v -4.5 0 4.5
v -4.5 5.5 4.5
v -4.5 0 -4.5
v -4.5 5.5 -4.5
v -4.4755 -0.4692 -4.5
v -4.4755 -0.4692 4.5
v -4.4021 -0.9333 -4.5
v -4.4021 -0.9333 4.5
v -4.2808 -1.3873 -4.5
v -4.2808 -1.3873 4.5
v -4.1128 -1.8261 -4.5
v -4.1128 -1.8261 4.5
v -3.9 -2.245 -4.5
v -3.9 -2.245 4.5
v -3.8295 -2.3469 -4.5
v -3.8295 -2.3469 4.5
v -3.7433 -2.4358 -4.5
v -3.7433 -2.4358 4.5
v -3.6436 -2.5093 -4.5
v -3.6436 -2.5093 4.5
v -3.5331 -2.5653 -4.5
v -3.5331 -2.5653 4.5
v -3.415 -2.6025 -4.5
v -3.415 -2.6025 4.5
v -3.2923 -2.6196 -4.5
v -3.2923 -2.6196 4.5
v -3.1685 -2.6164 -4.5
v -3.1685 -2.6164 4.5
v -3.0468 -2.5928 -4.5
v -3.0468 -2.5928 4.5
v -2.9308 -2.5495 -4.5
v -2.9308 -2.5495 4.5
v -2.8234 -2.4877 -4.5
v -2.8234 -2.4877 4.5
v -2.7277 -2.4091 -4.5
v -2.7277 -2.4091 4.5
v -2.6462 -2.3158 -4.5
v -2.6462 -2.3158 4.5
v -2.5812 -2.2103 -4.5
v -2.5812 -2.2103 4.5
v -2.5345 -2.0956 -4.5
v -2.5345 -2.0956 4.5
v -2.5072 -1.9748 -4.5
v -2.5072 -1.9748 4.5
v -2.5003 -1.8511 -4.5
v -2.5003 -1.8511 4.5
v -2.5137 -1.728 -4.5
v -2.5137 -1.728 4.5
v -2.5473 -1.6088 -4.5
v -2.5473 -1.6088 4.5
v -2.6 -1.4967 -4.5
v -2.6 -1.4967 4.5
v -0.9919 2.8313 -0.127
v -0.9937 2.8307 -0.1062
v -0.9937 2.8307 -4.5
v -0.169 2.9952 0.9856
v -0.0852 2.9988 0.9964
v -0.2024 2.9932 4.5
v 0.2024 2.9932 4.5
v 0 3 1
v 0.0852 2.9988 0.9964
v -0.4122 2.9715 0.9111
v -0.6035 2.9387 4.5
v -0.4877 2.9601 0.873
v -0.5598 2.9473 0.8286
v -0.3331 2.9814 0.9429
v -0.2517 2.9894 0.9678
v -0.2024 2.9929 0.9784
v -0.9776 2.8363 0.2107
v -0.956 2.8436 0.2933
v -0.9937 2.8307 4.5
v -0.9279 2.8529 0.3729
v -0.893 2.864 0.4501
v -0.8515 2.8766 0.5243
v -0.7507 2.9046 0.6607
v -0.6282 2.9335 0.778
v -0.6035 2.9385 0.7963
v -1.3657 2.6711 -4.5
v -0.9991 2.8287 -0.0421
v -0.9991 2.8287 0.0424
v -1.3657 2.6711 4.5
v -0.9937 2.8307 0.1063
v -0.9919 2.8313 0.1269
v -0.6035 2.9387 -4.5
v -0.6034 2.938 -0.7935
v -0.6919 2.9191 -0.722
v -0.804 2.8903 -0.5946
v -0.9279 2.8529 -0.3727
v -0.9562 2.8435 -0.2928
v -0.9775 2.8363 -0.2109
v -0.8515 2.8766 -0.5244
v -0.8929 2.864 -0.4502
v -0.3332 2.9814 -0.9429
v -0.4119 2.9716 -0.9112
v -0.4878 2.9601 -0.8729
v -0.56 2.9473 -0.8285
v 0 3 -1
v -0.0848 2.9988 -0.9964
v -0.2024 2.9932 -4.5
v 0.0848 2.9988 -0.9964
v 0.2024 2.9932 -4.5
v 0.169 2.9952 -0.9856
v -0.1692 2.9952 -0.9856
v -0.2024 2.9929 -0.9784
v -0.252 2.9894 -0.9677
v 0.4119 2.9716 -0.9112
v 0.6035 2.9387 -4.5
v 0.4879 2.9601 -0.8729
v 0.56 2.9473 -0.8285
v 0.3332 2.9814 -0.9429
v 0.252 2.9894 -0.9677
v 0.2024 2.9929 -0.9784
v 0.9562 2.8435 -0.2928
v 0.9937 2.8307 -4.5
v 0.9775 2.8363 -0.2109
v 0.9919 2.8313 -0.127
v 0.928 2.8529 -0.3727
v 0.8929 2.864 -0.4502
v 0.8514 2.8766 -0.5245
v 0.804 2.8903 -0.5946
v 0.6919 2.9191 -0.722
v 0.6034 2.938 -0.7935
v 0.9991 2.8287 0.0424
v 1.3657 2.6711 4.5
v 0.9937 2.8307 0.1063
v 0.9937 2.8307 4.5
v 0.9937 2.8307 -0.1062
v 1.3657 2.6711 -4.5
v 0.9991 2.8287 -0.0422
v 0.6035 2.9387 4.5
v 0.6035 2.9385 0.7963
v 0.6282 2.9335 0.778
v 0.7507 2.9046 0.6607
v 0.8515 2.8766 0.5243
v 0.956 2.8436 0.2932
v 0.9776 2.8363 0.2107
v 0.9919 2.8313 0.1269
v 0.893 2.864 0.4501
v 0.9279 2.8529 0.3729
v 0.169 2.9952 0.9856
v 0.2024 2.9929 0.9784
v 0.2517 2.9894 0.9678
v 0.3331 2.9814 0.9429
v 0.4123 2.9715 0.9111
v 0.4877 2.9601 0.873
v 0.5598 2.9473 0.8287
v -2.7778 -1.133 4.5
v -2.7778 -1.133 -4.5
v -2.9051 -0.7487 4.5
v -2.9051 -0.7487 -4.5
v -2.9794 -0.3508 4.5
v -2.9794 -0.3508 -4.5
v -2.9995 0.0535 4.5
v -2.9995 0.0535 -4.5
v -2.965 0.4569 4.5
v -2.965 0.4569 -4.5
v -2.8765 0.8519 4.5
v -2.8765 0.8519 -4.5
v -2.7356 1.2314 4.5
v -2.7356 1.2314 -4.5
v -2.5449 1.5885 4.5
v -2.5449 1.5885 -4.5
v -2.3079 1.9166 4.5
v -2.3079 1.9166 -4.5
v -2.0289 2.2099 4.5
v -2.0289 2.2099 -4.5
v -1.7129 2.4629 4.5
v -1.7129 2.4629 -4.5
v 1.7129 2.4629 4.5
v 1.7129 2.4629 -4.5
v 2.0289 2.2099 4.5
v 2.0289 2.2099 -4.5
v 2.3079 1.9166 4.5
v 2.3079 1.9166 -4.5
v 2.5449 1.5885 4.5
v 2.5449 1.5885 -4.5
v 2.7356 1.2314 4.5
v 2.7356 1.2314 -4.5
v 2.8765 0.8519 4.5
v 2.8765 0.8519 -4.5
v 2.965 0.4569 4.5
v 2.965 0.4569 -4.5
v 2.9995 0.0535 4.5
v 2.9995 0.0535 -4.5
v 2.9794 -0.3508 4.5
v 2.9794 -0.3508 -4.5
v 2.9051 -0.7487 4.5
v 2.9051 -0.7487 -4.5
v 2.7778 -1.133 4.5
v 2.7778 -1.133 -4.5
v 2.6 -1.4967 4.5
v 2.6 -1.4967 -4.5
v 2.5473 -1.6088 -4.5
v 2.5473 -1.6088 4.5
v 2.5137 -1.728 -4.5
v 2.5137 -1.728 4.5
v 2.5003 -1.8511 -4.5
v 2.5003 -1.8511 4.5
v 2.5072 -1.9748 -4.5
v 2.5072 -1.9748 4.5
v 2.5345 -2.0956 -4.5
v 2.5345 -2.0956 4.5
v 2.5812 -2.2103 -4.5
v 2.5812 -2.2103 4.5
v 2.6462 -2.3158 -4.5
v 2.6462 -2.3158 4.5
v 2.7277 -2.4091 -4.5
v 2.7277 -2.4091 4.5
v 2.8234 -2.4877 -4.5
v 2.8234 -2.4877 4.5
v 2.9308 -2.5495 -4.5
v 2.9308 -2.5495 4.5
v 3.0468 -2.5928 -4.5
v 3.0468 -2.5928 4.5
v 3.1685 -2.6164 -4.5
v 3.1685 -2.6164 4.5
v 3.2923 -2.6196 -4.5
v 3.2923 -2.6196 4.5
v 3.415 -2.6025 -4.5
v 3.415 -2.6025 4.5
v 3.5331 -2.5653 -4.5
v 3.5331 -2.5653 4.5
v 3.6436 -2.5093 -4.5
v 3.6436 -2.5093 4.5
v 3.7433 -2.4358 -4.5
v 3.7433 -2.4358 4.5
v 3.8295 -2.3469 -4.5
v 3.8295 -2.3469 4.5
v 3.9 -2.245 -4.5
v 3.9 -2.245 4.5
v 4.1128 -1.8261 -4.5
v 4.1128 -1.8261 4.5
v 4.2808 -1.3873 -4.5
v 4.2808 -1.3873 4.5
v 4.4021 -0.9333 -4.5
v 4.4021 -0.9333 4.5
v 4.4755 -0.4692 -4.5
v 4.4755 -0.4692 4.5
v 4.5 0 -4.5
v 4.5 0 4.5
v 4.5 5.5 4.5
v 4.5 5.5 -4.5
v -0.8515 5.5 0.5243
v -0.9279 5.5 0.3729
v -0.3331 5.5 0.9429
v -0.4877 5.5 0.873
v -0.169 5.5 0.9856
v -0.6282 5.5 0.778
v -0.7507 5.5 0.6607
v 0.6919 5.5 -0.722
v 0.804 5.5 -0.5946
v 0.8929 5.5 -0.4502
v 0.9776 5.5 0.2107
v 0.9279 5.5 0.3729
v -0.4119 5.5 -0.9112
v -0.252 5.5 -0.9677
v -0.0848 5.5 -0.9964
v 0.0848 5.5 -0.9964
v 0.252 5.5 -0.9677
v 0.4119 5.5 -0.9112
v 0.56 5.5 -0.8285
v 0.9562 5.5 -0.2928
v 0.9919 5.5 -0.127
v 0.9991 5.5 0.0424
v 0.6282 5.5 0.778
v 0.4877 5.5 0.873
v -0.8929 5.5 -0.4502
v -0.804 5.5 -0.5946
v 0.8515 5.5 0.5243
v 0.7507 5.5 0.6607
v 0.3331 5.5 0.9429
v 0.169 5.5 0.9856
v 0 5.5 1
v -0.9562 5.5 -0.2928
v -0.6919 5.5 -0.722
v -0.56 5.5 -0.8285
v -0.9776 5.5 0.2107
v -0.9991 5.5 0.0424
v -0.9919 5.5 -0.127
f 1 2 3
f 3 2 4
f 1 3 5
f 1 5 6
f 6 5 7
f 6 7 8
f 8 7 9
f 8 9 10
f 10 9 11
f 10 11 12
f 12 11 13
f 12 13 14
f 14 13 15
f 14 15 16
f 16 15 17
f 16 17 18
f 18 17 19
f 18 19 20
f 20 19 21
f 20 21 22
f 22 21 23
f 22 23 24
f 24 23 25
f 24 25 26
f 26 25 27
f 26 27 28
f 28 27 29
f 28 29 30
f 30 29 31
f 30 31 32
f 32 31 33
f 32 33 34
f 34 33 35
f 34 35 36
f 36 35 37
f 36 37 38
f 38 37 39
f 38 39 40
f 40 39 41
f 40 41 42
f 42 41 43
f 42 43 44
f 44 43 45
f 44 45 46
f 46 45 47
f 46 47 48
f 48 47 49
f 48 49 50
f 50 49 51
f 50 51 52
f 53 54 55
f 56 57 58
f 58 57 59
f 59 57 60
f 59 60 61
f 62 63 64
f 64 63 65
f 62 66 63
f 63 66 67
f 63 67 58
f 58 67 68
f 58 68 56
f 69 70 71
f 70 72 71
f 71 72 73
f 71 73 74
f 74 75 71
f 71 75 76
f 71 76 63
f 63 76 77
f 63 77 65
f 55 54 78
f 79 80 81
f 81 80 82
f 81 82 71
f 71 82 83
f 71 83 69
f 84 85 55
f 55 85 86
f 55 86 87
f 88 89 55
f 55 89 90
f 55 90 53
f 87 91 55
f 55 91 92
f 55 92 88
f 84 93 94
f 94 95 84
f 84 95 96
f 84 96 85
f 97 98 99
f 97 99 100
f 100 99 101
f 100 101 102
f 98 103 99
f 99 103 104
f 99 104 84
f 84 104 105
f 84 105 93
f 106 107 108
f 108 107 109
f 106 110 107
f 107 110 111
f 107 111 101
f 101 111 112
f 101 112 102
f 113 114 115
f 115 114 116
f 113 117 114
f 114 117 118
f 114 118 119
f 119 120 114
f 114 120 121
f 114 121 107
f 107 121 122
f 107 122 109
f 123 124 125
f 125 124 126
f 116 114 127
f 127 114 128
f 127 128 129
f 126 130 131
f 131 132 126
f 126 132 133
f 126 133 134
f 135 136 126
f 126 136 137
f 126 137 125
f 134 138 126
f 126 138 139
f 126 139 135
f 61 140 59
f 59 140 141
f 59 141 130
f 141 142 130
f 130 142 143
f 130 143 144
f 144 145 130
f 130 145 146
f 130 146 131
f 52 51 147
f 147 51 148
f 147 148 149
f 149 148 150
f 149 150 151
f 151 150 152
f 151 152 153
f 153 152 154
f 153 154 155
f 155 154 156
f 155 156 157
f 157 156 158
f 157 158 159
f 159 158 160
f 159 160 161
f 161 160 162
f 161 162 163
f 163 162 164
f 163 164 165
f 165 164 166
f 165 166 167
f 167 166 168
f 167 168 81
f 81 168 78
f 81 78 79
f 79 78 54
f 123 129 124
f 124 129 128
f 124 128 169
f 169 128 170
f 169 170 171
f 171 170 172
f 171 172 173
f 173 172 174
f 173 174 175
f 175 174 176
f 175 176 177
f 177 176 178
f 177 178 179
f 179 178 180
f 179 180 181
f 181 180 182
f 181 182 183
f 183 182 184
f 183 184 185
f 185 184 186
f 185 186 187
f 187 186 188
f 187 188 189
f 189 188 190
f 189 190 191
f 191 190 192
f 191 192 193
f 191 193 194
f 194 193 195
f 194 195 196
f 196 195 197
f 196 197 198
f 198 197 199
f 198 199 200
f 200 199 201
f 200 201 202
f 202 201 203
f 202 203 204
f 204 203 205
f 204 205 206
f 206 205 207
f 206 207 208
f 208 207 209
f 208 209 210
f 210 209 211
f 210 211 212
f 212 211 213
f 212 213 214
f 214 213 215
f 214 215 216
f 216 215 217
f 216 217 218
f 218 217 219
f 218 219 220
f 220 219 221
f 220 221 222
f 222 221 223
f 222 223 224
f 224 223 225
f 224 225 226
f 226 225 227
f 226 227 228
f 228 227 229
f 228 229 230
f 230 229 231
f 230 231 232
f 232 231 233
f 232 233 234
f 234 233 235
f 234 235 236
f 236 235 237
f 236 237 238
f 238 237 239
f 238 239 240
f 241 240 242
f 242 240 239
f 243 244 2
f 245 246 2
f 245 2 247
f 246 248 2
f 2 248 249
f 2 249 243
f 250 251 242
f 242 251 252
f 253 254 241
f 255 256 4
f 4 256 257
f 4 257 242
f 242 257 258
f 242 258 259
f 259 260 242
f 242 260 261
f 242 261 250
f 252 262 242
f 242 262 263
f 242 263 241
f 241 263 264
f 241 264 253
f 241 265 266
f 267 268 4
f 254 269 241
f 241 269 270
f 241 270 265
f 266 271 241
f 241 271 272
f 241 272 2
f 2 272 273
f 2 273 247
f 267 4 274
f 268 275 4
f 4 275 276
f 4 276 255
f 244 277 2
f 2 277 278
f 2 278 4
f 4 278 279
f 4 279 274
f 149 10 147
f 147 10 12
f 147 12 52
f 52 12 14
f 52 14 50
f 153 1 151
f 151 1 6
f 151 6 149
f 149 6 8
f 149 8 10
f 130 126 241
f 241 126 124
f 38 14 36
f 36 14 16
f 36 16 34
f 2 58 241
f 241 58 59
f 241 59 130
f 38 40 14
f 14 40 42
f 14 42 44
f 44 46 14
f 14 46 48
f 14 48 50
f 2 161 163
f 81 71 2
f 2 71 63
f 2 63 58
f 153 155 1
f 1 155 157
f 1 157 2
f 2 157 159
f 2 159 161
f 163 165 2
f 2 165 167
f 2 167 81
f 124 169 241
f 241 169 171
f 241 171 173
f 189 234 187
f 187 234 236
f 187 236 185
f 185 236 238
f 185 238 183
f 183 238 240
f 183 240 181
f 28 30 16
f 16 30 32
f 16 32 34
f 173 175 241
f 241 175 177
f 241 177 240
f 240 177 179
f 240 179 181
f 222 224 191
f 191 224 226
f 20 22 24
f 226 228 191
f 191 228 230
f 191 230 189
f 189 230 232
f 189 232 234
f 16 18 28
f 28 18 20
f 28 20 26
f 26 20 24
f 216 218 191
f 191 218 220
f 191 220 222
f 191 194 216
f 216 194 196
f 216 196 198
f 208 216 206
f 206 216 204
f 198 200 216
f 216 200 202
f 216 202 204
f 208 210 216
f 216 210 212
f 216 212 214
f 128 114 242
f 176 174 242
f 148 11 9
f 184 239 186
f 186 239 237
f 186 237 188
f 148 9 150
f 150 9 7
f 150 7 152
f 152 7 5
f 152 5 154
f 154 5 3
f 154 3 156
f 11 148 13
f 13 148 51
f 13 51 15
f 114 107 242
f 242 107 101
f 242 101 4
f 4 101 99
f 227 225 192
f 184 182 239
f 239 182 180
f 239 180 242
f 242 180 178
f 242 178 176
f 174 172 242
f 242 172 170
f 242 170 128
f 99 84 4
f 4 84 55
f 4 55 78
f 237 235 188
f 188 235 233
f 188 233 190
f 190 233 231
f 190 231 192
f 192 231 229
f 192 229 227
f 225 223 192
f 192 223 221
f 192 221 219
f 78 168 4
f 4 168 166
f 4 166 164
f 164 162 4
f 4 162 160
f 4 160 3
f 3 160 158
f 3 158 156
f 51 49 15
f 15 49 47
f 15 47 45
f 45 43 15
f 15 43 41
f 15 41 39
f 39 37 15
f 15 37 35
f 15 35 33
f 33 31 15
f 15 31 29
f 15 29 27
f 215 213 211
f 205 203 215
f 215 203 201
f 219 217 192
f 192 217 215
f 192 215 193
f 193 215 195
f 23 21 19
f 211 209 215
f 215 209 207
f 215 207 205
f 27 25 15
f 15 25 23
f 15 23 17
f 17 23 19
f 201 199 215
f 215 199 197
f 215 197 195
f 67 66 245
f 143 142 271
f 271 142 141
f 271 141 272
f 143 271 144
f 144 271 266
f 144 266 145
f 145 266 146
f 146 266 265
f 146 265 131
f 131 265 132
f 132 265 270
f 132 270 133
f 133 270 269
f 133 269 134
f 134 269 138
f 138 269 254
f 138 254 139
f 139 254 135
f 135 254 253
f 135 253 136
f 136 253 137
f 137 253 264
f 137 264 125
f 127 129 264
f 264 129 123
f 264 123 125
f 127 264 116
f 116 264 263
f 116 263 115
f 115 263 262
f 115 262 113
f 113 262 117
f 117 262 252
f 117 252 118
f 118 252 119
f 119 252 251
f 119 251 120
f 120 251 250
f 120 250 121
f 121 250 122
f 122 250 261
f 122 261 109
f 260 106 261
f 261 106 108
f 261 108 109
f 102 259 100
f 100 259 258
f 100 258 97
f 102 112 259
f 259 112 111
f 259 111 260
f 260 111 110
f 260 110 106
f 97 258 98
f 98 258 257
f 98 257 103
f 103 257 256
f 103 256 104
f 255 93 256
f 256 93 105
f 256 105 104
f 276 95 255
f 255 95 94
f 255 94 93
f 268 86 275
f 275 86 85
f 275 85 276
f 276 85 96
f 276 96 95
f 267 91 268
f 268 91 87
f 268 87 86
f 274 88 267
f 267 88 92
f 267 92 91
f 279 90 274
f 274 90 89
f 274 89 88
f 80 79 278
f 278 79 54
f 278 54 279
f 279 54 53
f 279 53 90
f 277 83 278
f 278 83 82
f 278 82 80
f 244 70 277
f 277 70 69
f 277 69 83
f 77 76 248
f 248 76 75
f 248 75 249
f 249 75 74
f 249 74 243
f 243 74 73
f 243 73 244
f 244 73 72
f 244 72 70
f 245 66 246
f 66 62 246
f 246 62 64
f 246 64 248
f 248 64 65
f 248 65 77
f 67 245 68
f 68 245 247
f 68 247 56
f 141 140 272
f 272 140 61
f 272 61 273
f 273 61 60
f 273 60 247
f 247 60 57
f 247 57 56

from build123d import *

# Parameters (mm, degrees)
AUFSATZ_LINEAR_AUSTRAGEN1_DEPTH      = 4.5
SCHNITT_LINEAR_AUSTRAGEN1_REACH      = 12.317
SCHNITT_LINEAR_AUSTRAGEN1_END_RADIUS = 3
SKIZZE3_R                            = 1


with BuildPart() as part:
    # Skizze1 → Aufsatz-Linear austragen1 (new, symmetric)
    with BuildSketch(Plane.XY):
        with BuildLine():
            Line((-4.5, 5.5), (4.5, 5.5))
            Line((4.5, 5.5), (4.5, 0))
            ThreePointArc((4.5, 0), (4.347413024, -1.161895004), (3.9, -2.244994432))
            ThreePointArc((3.9, -2.244994432), (2.875834261, -2.520828693), (2.6, -1.496662955))
            ThreePointArc((2.6, -1.496662955), (0, 3), (-2.6, -1.496662955))
            ThreePointArc((-2.6, -1.496662955), (-2.875834261, -2.520828693), (-3.9, -2.244994432))
            ThreePointArc((-3.9, -2.244994432), (-4.347413024, -1.161895004), (-4.5, 0))
            Line((-4.5, 0), (-4.5, 5.5))
        make_face()
    extrude(amount=AUFSATZ_LINEAR_AUSTRAGEN1_DEPTH, both=True)

    # Schnitt-Linear austragen1: up to this cylinder (the profile starts outside it)
    schnitt_linear_austragen1_end = Plane(origin=(0, 0, 0), z_dir=(0, 0, -1)) * Cylinder(SCHNITT_LINEAR_AUSTRAGEN1_END_RADIUS, 31.634, mode=Mode.PRIVATE)
    # Skizze3 → Schnitt-Linear austragen1 (cut, up to the surface)
    with BuildSketch(Plane(origin=(0, 5.5, 0), x_dir=(1, 0, 0), z_dir=(0, 1, 0)), mode=Mode.PRIVATE) as schnitt_linear_austragen1_sk1:
        with Locations(Location((0, 0, 0), (0, 0, 270))):
            Circle(SKIZZE3_R)
    schnitt_linear_austragen1_tool1 = extrude(schnitt_linear_austragen1_sk1.sketch, amount=-SCHNITT_LINEAR_AUSTRAGEN1_REACH, mode=Mode.PRIVATE) - schnitt_linear_austragen1_end
    add(schnitt_linear_austragen1_tool1.solids().sort_by_distance((0, 5.5, 0))[0], mode=Mode.SUBTRACT)


solid = part.part
